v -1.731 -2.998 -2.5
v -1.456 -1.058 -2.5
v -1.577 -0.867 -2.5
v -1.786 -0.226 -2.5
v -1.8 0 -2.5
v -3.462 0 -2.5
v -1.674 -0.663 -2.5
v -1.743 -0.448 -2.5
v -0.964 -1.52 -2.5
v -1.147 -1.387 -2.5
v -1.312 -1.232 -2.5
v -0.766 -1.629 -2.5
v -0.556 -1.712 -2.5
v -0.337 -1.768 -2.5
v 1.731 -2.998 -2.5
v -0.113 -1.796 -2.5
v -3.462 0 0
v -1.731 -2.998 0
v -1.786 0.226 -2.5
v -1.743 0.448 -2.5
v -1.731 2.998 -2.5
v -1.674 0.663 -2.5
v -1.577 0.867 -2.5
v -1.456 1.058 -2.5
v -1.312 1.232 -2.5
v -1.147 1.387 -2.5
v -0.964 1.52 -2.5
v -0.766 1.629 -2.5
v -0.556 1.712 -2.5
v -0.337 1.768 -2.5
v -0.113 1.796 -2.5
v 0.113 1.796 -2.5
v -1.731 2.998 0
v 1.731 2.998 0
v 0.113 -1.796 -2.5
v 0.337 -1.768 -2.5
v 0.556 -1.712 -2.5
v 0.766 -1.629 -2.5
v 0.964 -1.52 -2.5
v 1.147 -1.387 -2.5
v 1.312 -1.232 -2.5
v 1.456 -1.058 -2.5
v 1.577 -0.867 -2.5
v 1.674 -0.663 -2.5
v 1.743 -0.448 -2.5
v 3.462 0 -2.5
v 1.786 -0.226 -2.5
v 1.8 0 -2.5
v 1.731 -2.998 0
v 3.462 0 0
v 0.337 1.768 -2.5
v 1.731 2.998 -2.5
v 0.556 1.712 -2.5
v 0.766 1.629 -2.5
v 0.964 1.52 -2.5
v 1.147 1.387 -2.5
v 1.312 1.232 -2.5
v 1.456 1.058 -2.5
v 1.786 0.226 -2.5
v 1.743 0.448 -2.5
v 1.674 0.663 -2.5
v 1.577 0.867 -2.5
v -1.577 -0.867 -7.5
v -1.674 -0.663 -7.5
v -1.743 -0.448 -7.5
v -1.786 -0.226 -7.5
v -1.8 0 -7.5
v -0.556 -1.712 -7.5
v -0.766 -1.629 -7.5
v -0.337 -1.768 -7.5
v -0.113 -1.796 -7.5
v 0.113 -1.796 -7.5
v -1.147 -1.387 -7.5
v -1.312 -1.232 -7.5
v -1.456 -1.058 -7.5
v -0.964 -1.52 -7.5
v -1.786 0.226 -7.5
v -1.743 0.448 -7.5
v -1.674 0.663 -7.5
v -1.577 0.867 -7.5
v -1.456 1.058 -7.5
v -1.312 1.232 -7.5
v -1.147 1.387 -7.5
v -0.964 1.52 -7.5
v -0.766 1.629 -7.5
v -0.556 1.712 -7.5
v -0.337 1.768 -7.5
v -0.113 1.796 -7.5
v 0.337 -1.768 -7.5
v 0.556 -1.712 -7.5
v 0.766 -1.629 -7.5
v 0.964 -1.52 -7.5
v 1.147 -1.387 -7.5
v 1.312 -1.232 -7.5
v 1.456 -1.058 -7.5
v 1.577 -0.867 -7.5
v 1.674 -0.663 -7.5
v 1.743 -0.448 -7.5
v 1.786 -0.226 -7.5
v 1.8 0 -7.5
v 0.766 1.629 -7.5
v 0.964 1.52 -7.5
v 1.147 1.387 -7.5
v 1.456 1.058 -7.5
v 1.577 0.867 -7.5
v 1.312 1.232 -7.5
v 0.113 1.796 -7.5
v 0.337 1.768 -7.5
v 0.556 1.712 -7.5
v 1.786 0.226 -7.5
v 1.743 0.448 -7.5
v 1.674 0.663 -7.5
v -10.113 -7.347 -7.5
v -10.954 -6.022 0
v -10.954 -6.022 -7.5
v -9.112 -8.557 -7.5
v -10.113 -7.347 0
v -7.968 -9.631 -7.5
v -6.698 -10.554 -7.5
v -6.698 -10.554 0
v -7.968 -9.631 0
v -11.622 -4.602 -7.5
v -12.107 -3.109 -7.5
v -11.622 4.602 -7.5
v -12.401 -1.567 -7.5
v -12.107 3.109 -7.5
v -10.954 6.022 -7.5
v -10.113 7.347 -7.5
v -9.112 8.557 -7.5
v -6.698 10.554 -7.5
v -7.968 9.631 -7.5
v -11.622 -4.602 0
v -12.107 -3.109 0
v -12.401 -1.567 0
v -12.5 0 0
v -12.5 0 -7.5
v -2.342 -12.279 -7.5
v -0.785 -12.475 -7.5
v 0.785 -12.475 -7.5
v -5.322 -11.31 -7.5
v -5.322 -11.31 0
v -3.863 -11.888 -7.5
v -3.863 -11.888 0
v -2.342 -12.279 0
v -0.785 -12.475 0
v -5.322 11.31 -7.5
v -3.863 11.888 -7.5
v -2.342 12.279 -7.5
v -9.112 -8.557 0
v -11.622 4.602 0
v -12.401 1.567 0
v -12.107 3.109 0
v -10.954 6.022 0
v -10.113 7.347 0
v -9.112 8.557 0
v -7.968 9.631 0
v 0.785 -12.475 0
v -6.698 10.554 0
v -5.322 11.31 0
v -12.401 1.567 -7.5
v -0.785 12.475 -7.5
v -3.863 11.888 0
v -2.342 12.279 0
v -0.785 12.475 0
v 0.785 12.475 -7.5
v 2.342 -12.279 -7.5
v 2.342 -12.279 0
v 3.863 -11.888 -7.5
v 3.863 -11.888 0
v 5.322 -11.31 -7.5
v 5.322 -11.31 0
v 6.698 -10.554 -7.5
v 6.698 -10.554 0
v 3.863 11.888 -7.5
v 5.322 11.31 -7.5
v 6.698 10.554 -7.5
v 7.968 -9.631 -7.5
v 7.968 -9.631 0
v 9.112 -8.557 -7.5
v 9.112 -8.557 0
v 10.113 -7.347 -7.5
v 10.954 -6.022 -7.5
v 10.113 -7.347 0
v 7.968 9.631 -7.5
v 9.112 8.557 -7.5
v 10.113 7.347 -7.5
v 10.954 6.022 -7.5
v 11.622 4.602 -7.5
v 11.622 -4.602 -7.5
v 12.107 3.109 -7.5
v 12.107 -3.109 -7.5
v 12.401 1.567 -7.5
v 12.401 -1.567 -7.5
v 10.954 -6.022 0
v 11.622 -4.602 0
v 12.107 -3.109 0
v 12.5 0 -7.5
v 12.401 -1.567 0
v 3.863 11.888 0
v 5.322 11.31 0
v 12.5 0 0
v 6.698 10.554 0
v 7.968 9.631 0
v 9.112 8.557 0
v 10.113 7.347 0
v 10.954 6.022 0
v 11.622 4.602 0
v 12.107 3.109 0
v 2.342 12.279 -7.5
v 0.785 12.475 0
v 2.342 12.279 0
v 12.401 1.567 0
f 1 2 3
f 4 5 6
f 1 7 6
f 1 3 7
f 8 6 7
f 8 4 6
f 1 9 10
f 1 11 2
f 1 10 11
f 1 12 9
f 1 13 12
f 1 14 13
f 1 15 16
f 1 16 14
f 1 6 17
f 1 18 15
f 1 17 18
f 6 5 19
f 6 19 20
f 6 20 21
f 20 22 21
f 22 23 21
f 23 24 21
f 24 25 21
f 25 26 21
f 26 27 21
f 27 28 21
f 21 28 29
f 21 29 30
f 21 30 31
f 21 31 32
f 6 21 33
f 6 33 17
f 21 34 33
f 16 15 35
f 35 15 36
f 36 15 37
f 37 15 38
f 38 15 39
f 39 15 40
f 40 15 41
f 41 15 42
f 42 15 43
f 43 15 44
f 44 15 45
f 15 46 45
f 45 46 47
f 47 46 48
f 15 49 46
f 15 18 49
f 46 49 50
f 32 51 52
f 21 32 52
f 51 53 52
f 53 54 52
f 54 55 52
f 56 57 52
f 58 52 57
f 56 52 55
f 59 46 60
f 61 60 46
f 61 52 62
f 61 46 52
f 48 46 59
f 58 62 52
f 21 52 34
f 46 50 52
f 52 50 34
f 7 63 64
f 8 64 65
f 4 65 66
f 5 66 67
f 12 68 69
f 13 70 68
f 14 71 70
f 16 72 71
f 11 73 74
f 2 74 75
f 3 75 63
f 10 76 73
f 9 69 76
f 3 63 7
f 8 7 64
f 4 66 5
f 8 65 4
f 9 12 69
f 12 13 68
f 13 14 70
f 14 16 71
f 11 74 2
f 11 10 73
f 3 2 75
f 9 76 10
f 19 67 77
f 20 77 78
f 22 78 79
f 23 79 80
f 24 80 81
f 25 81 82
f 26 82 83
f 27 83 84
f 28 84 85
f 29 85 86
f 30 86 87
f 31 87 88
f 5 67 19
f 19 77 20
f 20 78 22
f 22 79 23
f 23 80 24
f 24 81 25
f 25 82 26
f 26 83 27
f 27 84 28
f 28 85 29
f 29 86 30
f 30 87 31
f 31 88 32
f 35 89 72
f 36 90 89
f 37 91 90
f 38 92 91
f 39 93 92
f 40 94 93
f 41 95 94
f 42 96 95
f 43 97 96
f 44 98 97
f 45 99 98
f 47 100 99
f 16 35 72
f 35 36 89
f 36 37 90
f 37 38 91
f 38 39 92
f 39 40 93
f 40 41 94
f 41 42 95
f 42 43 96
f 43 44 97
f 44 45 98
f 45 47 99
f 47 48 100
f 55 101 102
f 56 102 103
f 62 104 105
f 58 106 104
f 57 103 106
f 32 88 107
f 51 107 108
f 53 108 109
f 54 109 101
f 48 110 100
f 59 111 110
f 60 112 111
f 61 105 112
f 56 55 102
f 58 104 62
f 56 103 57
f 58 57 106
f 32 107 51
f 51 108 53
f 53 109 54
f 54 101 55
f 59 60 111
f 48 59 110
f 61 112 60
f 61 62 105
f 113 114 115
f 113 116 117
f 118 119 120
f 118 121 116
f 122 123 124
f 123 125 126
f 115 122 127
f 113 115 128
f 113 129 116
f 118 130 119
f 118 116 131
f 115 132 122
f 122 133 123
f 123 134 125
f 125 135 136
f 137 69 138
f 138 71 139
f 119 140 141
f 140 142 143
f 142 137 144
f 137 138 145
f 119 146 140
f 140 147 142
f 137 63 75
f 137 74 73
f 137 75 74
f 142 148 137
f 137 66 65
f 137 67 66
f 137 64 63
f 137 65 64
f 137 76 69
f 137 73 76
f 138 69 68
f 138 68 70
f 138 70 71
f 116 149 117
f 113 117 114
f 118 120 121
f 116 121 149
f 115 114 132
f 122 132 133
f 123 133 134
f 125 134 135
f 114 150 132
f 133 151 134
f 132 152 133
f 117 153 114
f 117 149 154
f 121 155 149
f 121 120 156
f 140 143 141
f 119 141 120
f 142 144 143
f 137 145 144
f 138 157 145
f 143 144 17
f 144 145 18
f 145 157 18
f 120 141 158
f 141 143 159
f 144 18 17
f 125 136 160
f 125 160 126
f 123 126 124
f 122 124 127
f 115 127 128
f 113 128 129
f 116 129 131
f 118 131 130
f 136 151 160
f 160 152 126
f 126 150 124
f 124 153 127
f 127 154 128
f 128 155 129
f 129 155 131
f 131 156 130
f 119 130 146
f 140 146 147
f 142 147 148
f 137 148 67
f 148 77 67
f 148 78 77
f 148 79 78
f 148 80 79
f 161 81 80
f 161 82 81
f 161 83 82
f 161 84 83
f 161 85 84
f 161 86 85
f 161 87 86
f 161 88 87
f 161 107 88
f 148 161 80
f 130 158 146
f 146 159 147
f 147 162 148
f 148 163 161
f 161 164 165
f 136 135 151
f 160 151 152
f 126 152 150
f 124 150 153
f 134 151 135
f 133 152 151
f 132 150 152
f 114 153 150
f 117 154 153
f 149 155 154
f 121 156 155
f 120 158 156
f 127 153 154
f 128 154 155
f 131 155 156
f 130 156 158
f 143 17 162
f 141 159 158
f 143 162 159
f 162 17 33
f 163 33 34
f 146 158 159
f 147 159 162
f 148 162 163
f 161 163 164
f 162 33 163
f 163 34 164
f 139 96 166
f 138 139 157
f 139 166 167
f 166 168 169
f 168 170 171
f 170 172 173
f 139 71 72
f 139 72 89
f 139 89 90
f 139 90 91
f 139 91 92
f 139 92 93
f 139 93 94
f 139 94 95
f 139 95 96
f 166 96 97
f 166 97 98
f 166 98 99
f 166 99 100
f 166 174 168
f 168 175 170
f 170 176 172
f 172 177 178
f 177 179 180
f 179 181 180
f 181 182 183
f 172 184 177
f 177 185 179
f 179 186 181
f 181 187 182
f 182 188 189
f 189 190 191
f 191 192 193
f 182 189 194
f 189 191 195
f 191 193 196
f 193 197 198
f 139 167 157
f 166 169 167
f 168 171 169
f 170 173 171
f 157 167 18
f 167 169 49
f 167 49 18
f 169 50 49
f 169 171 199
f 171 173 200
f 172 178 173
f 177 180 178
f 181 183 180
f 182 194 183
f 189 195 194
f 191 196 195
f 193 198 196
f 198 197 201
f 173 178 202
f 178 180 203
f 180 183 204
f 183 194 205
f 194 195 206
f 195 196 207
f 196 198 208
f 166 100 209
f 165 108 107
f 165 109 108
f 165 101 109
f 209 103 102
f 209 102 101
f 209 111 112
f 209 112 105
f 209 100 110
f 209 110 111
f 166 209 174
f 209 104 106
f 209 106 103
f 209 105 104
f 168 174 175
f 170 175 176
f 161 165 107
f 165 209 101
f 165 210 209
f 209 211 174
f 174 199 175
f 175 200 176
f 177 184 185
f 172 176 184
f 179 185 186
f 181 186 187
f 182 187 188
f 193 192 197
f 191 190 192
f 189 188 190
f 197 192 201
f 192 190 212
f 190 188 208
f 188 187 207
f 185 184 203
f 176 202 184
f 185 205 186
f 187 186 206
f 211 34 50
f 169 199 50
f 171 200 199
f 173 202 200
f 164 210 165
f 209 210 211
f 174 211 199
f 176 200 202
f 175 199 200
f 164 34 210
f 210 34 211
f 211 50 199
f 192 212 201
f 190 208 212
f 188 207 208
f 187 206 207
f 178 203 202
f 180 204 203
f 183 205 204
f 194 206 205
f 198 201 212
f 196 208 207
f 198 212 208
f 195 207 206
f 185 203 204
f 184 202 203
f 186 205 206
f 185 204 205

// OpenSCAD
$fn = 50;

difference() {
	union() {
		translate(v = [0, 0, -7.5]) {
			cylinder(h = 7.5, r = 12.5);
		}
	}
	union() {
		translate(v = [0, 0, 0]) {
			rotate(a = [0, 0, 0]) {
				difference() {
					union() {
						translate(v = [0, 0, -2.5]) {
							linear_extrude(height = 2.5) {
								polygon(points = [[3.4619999999999997, 0.0], [1.7310000000000003, 2.9981799479017264], [-1.7309999999999992, 2.9981799479017264], [-3.4619999999999997, 4.2397272186481365e-16], [-1.7310000000000014, -2.998179947901726], [1.7309999999999977, -2.9981799479017277]]);
							}
						}
					}
					union();
				}
			}
		}
		#translate(v = [0, 0, -100.0]) {
			cylinder(h = 200, r = 1.8);
		}
	}
}
